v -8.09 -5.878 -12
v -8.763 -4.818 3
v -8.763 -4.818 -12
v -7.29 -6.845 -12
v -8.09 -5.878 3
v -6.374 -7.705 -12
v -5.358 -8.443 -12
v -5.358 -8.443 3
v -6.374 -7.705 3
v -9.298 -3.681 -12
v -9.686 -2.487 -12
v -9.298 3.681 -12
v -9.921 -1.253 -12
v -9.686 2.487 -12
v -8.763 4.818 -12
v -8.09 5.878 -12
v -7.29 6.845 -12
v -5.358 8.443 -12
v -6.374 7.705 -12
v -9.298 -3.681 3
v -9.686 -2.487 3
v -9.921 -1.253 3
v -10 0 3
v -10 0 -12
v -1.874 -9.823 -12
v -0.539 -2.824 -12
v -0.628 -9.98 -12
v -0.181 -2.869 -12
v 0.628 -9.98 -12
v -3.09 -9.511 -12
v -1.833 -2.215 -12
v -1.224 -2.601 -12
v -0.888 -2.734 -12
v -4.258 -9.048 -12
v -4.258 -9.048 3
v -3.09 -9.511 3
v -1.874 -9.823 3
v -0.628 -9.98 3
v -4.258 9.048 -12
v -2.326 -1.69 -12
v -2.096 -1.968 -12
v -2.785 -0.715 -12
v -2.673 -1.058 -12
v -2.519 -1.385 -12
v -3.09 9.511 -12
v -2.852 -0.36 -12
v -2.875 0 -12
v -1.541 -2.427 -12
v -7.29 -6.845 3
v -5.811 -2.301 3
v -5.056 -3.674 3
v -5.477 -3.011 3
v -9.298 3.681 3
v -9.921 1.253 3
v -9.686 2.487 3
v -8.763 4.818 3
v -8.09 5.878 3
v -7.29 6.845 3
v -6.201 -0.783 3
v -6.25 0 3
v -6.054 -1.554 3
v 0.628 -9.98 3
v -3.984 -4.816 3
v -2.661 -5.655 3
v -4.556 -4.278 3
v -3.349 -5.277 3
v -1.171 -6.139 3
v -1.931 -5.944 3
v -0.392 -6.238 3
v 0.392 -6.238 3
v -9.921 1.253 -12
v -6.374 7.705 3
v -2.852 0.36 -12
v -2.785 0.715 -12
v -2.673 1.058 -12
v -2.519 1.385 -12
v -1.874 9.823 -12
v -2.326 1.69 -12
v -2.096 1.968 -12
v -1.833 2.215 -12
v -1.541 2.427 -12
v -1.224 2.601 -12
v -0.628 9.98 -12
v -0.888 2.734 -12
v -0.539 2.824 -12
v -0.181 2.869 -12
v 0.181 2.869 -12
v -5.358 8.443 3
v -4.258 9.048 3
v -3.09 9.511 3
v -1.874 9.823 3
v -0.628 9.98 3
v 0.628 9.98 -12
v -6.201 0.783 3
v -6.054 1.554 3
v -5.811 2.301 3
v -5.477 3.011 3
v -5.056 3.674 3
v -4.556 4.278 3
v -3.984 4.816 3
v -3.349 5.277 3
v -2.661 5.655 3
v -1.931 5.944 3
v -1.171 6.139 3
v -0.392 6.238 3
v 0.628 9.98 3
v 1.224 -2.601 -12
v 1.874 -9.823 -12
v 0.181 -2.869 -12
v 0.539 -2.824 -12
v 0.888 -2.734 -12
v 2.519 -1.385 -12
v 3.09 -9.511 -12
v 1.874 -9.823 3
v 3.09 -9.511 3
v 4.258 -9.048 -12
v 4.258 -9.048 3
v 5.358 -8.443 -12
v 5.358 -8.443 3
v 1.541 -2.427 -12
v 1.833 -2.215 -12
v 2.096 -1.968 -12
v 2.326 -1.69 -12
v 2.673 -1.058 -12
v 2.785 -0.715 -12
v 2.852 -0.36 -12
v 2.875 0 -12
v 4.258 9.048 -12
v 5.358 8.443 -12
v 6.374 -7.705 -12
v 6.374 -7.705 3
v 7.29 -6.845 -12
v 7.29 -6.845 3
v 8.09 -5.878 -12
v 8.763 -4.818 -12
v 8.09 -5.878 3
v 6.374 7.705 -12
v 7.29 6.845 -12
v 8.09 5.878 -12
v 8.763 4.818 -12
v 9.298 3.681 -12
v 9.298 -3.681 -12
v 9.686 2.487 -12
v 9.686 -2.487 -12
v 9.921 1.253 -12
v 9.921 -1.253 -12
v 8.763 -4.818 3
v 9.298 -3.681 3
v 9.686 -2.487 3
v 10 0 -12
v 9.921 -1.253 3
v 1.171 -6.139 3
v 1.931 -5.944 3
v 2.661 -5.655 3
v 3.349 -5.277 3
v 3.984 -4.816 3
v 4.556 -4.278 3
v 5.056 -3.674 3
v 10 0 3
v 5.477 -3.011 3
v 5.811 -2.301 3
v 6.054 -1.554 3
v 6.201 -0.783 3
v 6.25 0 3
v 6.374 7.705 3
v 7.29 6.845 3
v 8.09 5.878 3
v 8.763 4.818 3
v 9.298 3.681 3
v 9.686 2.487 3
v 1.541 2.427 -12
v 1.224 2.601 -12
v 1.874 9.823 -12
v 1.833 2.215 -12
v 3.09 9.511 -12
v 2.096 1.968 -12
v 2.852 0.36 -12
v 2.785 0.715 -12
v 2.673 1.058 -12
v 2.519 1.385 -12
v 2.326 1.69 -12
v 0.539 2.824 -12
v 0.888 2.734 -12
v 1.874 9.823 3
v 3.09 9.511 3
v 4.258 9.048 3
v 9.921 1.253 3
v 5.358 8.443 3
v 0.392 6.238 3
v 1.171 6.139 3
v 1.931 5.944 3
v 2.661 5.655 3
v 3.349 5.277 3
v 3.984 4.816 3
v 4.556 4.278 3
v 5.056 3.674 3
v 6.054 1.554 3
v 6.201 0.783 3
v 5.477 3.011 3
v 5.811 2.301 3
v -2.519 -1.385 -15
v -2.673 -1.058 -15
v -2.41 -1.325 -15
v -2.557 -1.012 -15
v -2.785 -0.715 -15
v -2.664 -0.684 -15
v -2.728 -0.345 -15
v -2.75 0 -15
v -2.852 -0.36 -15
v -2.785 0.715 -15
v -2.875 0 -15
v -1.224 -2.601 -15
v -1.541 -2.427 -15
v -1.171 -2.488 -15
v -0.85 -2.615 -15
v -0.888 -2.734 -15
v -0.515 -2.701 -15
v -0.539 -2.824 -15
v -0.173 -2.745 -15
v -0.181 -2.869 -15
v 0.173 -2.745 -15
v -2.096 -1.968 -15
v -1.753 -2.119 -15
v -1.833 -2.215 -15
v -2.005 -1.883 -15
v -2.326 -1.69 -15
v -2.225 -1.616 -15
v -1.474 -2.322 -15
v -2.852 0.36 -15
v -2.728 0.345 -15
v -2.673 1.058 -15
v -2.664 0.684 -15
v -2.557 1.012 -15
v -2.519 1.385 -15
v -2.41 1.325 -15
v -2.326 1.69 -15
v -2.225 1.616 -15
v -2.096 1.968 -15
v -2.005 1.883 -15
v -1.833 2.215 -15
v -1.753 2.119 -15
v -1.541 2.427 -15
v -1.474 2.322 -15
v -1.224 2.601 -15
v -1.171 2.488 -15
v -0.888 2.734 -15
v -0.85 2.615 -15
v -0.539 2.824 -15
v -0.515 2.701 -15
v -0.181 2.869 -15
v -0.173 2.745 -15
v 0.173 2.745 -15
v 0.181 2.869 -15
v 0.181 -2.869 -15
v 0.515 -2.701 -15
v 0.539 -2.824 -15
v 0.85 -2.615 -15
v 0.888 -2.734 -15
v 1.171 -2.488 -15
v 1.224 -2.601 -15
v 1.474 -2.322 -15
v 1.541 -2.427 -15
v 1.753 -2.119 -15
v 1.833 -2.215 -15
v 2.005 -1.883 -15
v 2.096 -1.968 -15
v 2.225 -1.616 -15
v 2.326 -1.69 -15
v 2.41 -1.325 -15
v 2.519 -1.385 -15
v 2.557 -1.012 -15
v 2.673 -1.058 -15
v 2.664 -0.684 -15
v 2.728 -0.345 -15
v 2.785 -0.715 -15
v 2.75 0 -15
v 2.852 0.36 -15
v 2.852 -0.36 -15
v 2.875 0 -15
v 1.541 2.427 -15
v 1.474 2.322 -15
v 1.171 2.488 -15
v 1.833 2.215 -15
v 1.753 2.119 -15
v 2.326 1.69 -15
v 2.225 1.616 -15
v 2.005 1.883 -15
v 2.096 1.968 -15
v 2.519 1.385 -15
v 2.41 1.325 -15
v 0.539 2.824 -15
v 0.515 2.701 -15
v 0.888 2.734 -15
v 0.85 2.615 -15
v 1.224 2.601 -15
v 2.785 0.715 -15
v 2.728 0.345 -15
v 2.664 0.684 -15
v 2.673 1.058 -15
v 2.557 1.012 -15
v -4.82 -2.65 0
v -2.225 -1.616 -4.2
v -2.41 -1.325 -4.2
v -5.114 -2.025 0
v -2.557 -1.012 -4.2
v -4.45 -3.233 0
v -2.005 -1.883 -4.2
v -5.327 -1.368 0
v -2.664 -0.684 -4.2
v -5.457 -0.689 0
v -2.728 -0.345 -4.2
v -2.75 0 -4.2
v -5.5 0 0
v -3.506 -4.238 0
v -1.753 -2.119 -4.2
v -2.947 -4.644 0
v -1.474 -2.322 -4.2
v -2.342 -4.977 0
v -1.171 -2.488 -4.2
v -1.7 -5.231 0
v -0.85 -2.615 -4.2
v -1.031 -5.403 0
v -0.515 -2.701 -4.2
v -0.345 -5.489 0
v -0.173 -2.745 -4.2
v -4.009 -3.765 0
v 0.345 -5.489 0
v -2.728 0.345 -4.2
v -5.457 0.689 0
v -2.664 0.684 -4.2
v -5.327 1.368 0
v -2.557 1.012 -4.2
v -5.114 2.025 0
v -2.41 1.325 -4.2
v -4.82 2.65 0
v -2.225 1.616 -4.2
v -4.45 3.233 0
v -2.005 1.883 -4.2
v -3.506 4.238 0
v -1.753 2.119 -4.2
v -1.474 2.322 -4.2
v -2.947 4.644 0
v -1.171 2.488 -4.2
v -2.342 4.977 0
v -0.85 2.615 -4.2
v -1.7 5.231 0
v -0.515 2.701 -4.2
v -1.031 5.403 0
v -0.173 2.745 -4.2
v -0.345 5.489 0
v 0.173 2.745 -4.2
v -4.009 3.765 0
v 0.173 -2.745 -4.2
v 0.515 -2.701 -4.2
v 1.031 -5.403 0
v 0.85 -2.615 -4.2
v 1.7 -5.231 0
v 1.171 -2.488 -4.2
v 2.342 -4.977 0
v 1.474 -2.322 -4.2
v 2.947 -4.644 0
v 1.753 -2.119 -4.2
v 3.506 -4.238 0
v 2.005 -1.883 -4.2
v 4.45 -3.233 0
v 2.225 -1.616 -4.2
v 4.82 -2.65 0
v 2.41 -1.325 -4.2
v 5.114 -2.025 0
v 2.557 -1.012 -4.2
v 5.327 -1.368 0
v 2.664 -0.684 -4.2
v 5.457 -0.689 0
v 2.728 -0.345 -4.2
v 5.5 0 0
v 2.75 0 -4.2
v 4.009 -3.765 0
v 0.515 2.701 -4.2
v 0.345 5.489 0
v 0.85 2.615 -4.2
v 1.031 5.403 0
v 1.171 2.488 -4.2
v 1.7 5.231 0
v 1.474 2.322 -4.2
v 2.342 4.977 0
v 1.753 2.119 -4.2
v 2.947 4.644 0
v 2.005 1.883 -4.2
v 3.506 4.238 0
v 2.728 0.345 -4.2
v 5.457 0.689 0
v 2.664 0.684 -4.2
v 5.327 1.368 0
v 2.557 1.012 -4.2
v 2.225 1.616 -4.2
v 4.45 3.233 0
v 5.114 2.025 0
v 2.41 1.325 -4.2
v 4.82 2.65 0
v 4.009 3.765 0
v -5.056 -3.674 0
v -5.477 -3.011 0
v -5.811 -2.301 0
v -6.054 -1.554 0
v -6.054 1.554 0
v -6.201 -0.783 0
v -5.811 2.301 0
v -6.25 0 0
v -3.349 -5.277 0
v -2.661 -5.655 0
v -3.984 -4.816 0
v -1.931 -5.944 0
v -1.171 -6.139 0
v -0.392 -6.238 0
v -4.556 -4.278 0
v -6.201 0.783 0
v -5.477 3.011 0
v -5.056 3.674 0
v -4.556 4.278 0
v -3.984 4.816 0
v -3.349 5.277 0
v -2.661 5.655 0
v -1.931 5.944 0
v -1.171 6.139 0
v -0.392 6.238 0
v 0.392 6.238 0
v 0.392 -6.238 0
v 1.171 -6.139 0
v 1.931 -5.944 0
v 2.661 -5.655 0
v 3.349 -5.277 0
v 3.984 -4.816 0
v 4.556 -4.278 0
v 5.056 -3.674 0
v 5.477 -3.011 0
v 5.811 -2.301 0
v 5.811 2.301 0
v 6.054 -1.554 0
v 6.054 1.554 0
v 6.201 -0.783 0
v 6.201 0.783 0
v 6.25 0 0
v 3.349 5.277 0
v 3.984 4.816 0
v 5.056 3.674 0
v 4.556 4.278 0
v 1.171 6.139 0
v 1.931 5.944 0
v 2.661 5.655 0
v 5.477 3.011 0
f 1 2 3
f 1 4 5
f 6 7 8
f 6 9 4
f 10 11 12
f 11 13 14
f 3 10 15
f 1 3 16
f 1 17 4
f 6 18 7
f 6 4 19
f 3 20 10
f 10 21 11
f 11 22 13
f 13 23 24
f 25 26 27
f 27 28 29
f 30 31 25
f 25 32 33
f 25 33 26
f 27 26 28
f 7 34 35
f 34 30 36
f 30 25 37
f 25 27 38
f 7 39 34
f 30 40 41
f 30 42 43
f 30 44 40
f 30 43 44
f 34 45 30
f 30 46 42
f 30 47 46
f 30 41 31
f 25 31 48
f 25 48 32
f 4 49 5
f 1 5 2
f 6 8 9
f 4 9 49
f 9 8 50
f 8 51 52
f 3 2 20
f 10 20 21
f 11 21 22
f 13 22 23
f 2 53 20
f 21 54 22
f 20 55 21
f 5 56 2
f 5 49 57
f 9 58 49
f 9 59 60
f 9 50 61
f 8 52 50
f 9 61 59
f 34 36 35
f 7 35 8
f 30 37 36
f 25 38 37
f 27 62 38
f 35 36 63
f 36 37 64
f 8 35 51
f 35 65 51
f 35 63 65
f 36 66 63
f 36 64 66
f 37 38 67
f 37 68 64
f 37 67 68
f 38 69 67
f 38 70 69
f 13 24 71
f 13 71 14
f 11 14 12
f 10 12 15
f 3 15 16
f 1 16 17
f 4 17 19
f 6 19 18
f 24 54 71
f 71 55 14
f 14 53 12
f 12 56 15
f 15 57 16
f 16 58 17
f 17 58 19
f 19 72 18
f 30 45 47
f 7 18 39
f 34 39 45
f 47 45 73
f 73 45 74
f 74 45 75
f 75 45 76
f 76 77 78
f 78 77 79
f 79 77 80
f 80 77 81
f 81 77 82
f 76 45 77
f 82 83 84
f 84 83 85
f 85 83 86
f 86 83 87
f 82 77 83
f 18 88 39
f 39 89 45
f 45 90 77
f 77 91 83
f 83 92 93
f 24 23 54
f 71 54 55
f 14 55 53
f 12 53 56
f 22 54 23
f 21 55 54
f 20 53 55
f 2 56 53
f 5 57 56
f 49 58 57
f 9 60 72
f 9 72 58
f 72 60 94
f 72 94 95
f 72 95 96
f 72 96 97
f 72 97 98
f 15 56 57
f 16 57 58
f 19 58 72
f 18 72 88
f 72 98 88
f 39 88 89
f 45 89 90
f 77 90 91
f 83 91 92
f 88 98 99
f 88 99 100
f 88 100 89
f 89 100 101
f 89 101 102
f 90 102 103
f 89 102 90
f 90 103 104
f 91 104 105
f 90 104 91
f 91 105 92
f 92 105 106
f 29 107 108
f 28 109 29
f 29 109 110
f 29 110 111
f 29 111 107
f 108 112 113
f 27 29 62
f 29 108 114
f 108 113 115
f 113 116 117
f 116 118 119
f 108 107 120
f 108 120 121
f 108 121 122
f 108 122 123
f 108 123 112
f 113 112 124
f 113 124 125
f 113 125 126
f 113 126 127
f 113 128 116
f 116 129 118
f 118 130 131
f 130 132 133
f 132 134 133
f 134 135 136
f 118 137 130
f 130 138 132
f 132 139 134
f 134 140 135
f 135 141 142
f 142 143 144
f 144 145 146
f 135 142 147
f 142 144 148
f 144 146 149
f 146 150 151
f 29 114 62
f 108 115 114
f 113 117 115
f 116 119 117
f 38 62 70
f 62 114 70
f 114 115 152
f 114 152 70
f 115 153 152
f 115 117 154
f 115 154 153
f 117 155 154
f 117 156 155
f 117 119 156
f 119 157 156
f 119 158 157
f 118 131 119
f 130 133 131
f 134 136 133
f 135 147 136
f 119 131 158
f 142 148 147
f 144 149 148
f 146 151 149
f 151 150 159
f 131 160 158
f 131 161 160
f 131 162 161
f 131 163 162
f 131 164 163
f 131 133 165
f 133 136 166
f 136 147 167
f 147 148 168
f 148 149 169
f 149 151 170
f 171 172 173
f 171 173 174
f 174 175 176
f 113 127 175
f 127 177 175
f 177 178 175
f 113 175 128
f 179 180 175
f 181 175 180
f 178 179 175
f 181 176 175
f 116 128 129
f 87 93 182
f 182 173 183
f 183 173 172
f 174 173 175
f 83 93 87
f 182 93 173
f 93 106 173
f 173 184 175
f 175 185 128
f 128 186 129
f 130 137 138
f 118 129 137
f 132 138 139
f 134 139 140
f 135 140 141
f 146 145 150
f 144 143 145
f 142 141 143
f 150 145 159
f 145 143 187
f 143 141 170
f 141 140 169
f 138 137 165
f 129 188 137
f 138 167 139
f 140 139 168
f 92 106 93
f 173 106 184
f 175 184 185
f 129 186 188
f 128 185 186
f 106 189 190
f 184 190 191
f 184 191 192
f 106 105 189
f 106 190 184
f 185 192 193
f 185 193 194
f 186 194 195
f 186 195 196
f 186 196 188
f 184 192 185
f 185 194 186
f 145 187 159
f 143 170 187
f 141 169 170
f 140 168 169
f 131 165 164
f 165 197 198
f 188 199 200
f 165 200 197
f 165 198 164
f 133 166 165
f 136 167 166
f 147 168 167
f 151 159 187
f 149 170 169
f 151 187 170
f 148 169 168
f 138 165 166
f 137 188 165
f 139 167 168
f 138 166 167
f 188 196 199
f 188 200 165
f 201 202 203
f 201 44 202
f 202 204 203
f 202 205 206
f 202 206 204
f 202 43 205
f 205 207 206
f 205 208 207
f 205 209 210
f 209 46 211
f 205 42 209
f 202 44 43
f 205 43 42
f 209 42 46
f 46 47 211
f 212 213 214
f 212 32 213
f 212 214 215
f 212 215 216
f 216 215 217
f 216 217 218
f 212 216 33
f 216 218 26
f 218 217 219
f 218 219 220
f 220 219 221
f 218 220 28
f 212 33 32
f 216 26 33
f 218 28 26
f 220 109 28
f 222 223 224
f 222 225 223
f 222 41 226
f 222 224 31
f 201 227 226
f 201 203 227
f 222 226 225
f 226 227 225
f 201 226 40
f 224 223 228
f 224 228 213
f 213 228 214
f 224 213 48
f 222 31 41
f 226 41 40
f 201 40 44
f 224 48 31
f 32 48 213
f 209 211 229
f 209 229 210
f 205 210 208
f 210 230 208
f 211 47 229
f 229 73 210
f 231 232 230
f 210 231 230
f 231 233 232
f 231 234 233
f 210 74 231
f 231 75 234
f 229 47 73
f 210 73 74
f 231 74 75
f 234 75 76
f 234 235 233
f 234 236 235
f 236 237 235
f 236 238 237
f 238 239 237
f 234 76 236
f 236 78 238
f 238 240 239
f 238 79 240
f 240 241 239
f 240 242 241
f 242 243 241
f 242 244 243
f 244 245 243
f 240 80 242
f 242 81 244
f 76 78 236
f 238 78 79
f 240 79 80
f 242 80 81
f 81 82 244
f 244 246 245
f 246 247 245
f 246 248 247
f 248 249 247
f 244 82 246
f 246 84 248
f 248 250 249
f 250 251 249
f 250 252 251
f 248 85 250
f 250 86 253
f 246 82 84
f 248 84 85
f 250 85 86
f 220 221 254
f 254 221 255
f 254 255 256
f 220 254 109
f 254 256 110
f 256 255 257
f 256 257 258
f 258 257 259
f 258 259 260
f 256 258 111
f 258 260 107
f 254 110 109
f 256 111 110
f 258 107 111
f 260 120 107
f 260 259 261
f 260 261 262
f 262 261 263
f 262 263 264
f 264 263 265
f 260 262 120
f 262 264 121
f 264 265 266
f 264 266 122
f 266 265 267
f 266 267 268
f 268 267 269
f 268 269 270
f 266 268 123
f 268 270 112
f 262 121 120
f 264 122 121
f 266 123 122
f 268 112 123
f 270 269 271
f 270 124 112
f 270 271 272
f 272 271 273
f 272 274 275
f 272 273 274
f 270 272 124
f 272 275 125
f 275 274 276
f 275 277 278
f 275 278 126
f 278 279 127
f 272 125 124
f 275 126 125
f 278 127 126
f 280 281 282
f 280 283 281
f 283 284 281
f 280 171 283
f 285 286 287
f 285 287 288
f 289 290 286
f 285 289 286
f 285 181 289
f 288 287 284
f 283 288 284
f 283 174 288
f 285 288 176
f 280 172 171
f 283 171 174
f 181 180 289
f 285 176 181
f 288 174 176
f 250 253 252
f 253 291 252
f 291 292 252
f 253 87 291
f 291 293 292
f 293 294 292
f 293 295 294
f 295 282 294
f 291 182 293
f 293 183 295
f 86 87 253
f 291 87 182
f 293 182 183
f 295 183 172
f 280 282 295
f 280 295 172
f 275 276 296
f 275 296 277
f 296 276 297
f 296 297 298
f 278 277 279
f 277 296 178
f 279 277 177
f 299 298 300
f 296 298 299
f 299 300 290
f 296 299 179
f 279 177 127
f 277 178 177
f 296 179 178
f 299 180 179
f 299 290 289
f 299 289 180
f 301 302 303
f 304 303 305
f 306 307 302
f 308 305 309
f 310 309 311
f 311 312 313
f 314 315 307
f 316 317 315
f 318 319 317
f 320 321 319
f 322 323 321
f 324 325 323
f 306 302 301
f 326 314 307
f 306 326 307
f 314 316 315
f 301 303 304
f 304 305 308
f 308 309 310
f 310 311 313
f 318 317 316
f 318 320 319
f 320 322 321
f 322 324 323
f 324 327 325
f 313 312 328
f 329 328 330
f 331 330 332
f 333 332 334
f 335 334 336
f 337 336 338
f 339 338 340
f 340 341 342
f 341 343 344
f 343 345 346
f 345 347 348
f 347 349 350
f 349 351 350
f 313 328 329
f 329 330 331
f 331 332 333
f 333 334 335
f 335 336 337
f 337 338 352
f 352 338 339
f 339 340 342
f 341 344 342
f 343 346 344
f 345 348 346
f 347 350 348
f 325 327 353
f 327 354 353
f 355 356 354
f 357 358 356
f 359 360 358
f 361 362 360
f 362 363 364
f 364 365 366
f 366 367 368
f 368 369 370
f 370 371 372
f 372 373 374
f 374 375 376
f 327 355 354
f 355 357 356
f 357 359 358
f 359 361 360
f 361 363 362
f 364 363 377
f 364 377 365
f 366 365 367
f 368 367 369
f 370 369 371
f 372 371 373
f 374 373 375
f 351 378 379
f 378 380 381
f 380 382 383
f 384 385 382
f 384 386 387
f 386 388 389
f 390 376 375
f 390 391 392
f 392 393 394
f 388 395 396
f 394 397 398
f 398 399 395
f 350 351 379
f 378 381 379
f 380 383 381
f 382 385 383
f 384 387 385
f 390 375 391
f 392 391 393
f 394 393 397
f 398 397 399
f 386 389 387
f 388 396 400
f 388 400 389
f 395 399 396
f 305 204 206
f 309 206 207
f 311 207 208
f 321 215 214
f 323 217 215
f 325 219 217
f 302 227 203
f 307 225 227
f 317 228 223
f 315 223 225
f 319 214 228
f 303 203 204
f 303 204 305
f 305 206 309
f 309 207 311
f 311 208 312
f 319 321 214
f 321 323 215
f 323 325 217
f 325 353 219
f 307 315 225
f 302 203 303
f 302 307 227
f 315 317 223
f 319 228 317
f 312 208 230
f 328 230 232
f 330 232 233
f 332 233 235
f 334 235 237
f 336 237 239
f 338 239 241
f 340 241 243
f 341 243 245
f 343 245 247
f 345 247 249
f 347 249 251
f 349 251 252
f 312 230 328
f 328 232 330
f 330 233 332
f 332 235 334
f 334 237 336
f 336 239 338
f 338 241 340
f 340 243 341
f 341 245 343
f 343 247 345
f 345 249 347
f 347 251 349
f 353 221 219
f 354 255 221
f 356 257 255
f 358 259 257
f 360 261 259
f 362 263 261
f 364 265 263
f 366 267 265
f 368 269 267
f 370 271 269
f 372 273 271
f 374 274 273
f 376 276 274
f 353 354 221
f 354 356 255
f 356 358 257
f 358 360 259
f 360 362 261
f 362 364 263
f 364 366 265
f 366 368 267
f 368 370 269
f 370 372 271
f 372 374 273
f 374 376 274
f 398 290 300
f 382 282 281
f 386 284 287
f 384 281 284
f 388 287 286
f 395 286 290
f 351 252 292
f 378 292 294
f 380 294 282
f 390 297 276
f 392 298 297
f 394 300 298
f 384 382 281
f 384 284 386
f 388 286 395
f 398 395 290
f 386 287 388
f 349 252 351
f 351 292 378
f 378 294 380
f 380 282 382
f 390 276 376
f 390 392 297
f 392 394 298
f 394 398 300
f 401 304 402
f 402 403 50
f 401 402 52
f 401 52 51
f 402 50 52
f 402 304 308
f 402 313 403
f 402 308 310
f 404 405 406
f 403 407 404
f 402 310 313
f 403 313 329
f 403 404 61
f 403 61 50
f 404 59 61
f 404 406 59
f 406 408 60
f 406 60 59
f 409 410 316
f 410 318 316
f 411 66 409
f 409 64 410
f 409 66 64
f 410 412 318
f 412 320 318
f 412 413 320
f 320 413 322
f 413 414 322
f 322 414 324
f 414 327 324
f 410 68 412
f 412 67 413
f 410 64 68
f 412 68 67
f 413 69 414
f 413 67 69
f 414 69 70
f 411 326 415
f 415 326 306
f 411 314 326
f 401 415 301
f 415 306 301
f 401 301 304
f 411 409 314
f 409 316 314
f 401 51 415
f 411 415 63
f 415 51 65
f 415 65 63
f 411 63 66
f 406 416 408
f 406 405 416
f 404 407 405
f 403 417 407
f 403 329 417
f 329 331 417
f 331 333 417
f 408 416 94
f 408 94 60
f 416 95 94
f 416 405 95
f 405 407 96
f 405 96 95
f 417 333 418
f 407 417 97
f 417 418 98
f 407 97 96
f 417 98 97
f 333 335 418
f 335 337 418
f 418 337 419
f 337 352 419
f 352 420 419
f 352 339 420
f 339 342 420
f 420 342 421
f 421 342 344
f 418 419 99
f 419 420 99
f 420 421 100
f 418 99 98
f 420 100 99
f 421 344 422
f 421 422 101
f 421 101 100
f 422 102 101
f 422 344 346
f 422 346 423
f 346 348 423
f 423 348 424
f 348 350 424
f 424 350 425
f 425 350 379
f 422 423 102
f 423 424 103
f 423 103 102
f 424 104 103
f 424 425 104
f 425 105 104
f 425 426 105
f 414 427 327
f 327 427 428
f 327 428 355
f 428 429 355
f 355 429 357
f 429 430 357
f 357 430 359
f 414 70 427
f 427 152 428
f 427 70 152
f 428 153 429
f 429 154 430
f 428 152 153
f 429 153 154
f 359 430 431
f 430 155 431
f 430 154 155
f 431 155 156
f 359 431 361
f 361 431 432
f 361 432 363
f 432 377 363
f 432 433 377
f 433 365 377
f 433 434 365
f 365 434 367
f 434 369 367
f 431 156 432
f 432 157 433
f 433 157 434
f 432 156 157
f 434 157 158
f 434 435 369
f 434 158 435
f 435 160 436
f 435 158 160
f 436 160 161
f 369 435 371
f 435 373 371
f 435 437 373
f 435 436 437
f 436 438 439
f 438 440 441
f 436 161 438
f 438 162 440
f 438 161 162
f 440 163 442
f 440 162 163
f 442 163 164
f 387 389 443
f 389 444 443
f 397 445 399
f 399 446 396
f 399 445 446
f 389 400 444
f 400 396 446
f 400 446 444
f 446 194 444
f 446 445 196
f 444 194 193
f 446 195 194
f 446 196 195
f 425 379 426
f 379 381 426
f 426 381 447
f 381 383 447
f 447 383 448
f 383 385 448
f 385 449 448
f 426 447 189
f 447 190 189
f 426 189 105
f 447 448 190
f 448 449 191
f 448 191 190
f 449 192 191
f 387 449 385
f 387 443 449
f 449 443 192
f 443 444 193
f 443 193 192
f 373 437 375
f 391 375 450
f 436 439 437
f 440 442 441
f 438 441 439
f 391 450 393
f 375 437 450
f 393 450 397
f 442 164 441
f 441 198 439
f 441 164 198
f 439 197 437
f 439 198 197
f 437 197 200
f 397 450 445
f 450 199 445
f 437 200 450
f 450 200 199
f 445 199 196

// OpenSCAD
$fn = 50;


difference() {
	union() {
		translate(v = [0, 0, -12.0000000000]) {
			cylinder(h = 15, r = 10.0000000000);
		}
		#translate(v = [0, 0, -15.0000000000]) {
			cylinder(h = 15, r = 2.8750000000);
		}
	}
	union() {
		translate(v = [0, 0, 0]) {
			rotate(a = [0, 0, 0]) {
				difference() {
					union() {
						translate(v = [0, 0, -15.0000000000]) {
							cylinder(h = 15, r = 2.2500000000);
						}
						translate(v = [0, 0, -4.2000000000]) {
							cylinder(h = 4.2000000000, r1 = 2.7500000000, r2 = 5.5000000000);
						}
						translate(v = [0, 0, -15.0000000000]) {
							cylinder(h = 15, r = 2.7500000000);
						}
						translate(v = [0, 0, -15.0000000000]) {
							cylinder(h = 15, r = 2.2500000000);
						}
					}
					union();
				}
			}
		}
		#cylinder(h = 3, r = 6.2500000000);
	}
}
